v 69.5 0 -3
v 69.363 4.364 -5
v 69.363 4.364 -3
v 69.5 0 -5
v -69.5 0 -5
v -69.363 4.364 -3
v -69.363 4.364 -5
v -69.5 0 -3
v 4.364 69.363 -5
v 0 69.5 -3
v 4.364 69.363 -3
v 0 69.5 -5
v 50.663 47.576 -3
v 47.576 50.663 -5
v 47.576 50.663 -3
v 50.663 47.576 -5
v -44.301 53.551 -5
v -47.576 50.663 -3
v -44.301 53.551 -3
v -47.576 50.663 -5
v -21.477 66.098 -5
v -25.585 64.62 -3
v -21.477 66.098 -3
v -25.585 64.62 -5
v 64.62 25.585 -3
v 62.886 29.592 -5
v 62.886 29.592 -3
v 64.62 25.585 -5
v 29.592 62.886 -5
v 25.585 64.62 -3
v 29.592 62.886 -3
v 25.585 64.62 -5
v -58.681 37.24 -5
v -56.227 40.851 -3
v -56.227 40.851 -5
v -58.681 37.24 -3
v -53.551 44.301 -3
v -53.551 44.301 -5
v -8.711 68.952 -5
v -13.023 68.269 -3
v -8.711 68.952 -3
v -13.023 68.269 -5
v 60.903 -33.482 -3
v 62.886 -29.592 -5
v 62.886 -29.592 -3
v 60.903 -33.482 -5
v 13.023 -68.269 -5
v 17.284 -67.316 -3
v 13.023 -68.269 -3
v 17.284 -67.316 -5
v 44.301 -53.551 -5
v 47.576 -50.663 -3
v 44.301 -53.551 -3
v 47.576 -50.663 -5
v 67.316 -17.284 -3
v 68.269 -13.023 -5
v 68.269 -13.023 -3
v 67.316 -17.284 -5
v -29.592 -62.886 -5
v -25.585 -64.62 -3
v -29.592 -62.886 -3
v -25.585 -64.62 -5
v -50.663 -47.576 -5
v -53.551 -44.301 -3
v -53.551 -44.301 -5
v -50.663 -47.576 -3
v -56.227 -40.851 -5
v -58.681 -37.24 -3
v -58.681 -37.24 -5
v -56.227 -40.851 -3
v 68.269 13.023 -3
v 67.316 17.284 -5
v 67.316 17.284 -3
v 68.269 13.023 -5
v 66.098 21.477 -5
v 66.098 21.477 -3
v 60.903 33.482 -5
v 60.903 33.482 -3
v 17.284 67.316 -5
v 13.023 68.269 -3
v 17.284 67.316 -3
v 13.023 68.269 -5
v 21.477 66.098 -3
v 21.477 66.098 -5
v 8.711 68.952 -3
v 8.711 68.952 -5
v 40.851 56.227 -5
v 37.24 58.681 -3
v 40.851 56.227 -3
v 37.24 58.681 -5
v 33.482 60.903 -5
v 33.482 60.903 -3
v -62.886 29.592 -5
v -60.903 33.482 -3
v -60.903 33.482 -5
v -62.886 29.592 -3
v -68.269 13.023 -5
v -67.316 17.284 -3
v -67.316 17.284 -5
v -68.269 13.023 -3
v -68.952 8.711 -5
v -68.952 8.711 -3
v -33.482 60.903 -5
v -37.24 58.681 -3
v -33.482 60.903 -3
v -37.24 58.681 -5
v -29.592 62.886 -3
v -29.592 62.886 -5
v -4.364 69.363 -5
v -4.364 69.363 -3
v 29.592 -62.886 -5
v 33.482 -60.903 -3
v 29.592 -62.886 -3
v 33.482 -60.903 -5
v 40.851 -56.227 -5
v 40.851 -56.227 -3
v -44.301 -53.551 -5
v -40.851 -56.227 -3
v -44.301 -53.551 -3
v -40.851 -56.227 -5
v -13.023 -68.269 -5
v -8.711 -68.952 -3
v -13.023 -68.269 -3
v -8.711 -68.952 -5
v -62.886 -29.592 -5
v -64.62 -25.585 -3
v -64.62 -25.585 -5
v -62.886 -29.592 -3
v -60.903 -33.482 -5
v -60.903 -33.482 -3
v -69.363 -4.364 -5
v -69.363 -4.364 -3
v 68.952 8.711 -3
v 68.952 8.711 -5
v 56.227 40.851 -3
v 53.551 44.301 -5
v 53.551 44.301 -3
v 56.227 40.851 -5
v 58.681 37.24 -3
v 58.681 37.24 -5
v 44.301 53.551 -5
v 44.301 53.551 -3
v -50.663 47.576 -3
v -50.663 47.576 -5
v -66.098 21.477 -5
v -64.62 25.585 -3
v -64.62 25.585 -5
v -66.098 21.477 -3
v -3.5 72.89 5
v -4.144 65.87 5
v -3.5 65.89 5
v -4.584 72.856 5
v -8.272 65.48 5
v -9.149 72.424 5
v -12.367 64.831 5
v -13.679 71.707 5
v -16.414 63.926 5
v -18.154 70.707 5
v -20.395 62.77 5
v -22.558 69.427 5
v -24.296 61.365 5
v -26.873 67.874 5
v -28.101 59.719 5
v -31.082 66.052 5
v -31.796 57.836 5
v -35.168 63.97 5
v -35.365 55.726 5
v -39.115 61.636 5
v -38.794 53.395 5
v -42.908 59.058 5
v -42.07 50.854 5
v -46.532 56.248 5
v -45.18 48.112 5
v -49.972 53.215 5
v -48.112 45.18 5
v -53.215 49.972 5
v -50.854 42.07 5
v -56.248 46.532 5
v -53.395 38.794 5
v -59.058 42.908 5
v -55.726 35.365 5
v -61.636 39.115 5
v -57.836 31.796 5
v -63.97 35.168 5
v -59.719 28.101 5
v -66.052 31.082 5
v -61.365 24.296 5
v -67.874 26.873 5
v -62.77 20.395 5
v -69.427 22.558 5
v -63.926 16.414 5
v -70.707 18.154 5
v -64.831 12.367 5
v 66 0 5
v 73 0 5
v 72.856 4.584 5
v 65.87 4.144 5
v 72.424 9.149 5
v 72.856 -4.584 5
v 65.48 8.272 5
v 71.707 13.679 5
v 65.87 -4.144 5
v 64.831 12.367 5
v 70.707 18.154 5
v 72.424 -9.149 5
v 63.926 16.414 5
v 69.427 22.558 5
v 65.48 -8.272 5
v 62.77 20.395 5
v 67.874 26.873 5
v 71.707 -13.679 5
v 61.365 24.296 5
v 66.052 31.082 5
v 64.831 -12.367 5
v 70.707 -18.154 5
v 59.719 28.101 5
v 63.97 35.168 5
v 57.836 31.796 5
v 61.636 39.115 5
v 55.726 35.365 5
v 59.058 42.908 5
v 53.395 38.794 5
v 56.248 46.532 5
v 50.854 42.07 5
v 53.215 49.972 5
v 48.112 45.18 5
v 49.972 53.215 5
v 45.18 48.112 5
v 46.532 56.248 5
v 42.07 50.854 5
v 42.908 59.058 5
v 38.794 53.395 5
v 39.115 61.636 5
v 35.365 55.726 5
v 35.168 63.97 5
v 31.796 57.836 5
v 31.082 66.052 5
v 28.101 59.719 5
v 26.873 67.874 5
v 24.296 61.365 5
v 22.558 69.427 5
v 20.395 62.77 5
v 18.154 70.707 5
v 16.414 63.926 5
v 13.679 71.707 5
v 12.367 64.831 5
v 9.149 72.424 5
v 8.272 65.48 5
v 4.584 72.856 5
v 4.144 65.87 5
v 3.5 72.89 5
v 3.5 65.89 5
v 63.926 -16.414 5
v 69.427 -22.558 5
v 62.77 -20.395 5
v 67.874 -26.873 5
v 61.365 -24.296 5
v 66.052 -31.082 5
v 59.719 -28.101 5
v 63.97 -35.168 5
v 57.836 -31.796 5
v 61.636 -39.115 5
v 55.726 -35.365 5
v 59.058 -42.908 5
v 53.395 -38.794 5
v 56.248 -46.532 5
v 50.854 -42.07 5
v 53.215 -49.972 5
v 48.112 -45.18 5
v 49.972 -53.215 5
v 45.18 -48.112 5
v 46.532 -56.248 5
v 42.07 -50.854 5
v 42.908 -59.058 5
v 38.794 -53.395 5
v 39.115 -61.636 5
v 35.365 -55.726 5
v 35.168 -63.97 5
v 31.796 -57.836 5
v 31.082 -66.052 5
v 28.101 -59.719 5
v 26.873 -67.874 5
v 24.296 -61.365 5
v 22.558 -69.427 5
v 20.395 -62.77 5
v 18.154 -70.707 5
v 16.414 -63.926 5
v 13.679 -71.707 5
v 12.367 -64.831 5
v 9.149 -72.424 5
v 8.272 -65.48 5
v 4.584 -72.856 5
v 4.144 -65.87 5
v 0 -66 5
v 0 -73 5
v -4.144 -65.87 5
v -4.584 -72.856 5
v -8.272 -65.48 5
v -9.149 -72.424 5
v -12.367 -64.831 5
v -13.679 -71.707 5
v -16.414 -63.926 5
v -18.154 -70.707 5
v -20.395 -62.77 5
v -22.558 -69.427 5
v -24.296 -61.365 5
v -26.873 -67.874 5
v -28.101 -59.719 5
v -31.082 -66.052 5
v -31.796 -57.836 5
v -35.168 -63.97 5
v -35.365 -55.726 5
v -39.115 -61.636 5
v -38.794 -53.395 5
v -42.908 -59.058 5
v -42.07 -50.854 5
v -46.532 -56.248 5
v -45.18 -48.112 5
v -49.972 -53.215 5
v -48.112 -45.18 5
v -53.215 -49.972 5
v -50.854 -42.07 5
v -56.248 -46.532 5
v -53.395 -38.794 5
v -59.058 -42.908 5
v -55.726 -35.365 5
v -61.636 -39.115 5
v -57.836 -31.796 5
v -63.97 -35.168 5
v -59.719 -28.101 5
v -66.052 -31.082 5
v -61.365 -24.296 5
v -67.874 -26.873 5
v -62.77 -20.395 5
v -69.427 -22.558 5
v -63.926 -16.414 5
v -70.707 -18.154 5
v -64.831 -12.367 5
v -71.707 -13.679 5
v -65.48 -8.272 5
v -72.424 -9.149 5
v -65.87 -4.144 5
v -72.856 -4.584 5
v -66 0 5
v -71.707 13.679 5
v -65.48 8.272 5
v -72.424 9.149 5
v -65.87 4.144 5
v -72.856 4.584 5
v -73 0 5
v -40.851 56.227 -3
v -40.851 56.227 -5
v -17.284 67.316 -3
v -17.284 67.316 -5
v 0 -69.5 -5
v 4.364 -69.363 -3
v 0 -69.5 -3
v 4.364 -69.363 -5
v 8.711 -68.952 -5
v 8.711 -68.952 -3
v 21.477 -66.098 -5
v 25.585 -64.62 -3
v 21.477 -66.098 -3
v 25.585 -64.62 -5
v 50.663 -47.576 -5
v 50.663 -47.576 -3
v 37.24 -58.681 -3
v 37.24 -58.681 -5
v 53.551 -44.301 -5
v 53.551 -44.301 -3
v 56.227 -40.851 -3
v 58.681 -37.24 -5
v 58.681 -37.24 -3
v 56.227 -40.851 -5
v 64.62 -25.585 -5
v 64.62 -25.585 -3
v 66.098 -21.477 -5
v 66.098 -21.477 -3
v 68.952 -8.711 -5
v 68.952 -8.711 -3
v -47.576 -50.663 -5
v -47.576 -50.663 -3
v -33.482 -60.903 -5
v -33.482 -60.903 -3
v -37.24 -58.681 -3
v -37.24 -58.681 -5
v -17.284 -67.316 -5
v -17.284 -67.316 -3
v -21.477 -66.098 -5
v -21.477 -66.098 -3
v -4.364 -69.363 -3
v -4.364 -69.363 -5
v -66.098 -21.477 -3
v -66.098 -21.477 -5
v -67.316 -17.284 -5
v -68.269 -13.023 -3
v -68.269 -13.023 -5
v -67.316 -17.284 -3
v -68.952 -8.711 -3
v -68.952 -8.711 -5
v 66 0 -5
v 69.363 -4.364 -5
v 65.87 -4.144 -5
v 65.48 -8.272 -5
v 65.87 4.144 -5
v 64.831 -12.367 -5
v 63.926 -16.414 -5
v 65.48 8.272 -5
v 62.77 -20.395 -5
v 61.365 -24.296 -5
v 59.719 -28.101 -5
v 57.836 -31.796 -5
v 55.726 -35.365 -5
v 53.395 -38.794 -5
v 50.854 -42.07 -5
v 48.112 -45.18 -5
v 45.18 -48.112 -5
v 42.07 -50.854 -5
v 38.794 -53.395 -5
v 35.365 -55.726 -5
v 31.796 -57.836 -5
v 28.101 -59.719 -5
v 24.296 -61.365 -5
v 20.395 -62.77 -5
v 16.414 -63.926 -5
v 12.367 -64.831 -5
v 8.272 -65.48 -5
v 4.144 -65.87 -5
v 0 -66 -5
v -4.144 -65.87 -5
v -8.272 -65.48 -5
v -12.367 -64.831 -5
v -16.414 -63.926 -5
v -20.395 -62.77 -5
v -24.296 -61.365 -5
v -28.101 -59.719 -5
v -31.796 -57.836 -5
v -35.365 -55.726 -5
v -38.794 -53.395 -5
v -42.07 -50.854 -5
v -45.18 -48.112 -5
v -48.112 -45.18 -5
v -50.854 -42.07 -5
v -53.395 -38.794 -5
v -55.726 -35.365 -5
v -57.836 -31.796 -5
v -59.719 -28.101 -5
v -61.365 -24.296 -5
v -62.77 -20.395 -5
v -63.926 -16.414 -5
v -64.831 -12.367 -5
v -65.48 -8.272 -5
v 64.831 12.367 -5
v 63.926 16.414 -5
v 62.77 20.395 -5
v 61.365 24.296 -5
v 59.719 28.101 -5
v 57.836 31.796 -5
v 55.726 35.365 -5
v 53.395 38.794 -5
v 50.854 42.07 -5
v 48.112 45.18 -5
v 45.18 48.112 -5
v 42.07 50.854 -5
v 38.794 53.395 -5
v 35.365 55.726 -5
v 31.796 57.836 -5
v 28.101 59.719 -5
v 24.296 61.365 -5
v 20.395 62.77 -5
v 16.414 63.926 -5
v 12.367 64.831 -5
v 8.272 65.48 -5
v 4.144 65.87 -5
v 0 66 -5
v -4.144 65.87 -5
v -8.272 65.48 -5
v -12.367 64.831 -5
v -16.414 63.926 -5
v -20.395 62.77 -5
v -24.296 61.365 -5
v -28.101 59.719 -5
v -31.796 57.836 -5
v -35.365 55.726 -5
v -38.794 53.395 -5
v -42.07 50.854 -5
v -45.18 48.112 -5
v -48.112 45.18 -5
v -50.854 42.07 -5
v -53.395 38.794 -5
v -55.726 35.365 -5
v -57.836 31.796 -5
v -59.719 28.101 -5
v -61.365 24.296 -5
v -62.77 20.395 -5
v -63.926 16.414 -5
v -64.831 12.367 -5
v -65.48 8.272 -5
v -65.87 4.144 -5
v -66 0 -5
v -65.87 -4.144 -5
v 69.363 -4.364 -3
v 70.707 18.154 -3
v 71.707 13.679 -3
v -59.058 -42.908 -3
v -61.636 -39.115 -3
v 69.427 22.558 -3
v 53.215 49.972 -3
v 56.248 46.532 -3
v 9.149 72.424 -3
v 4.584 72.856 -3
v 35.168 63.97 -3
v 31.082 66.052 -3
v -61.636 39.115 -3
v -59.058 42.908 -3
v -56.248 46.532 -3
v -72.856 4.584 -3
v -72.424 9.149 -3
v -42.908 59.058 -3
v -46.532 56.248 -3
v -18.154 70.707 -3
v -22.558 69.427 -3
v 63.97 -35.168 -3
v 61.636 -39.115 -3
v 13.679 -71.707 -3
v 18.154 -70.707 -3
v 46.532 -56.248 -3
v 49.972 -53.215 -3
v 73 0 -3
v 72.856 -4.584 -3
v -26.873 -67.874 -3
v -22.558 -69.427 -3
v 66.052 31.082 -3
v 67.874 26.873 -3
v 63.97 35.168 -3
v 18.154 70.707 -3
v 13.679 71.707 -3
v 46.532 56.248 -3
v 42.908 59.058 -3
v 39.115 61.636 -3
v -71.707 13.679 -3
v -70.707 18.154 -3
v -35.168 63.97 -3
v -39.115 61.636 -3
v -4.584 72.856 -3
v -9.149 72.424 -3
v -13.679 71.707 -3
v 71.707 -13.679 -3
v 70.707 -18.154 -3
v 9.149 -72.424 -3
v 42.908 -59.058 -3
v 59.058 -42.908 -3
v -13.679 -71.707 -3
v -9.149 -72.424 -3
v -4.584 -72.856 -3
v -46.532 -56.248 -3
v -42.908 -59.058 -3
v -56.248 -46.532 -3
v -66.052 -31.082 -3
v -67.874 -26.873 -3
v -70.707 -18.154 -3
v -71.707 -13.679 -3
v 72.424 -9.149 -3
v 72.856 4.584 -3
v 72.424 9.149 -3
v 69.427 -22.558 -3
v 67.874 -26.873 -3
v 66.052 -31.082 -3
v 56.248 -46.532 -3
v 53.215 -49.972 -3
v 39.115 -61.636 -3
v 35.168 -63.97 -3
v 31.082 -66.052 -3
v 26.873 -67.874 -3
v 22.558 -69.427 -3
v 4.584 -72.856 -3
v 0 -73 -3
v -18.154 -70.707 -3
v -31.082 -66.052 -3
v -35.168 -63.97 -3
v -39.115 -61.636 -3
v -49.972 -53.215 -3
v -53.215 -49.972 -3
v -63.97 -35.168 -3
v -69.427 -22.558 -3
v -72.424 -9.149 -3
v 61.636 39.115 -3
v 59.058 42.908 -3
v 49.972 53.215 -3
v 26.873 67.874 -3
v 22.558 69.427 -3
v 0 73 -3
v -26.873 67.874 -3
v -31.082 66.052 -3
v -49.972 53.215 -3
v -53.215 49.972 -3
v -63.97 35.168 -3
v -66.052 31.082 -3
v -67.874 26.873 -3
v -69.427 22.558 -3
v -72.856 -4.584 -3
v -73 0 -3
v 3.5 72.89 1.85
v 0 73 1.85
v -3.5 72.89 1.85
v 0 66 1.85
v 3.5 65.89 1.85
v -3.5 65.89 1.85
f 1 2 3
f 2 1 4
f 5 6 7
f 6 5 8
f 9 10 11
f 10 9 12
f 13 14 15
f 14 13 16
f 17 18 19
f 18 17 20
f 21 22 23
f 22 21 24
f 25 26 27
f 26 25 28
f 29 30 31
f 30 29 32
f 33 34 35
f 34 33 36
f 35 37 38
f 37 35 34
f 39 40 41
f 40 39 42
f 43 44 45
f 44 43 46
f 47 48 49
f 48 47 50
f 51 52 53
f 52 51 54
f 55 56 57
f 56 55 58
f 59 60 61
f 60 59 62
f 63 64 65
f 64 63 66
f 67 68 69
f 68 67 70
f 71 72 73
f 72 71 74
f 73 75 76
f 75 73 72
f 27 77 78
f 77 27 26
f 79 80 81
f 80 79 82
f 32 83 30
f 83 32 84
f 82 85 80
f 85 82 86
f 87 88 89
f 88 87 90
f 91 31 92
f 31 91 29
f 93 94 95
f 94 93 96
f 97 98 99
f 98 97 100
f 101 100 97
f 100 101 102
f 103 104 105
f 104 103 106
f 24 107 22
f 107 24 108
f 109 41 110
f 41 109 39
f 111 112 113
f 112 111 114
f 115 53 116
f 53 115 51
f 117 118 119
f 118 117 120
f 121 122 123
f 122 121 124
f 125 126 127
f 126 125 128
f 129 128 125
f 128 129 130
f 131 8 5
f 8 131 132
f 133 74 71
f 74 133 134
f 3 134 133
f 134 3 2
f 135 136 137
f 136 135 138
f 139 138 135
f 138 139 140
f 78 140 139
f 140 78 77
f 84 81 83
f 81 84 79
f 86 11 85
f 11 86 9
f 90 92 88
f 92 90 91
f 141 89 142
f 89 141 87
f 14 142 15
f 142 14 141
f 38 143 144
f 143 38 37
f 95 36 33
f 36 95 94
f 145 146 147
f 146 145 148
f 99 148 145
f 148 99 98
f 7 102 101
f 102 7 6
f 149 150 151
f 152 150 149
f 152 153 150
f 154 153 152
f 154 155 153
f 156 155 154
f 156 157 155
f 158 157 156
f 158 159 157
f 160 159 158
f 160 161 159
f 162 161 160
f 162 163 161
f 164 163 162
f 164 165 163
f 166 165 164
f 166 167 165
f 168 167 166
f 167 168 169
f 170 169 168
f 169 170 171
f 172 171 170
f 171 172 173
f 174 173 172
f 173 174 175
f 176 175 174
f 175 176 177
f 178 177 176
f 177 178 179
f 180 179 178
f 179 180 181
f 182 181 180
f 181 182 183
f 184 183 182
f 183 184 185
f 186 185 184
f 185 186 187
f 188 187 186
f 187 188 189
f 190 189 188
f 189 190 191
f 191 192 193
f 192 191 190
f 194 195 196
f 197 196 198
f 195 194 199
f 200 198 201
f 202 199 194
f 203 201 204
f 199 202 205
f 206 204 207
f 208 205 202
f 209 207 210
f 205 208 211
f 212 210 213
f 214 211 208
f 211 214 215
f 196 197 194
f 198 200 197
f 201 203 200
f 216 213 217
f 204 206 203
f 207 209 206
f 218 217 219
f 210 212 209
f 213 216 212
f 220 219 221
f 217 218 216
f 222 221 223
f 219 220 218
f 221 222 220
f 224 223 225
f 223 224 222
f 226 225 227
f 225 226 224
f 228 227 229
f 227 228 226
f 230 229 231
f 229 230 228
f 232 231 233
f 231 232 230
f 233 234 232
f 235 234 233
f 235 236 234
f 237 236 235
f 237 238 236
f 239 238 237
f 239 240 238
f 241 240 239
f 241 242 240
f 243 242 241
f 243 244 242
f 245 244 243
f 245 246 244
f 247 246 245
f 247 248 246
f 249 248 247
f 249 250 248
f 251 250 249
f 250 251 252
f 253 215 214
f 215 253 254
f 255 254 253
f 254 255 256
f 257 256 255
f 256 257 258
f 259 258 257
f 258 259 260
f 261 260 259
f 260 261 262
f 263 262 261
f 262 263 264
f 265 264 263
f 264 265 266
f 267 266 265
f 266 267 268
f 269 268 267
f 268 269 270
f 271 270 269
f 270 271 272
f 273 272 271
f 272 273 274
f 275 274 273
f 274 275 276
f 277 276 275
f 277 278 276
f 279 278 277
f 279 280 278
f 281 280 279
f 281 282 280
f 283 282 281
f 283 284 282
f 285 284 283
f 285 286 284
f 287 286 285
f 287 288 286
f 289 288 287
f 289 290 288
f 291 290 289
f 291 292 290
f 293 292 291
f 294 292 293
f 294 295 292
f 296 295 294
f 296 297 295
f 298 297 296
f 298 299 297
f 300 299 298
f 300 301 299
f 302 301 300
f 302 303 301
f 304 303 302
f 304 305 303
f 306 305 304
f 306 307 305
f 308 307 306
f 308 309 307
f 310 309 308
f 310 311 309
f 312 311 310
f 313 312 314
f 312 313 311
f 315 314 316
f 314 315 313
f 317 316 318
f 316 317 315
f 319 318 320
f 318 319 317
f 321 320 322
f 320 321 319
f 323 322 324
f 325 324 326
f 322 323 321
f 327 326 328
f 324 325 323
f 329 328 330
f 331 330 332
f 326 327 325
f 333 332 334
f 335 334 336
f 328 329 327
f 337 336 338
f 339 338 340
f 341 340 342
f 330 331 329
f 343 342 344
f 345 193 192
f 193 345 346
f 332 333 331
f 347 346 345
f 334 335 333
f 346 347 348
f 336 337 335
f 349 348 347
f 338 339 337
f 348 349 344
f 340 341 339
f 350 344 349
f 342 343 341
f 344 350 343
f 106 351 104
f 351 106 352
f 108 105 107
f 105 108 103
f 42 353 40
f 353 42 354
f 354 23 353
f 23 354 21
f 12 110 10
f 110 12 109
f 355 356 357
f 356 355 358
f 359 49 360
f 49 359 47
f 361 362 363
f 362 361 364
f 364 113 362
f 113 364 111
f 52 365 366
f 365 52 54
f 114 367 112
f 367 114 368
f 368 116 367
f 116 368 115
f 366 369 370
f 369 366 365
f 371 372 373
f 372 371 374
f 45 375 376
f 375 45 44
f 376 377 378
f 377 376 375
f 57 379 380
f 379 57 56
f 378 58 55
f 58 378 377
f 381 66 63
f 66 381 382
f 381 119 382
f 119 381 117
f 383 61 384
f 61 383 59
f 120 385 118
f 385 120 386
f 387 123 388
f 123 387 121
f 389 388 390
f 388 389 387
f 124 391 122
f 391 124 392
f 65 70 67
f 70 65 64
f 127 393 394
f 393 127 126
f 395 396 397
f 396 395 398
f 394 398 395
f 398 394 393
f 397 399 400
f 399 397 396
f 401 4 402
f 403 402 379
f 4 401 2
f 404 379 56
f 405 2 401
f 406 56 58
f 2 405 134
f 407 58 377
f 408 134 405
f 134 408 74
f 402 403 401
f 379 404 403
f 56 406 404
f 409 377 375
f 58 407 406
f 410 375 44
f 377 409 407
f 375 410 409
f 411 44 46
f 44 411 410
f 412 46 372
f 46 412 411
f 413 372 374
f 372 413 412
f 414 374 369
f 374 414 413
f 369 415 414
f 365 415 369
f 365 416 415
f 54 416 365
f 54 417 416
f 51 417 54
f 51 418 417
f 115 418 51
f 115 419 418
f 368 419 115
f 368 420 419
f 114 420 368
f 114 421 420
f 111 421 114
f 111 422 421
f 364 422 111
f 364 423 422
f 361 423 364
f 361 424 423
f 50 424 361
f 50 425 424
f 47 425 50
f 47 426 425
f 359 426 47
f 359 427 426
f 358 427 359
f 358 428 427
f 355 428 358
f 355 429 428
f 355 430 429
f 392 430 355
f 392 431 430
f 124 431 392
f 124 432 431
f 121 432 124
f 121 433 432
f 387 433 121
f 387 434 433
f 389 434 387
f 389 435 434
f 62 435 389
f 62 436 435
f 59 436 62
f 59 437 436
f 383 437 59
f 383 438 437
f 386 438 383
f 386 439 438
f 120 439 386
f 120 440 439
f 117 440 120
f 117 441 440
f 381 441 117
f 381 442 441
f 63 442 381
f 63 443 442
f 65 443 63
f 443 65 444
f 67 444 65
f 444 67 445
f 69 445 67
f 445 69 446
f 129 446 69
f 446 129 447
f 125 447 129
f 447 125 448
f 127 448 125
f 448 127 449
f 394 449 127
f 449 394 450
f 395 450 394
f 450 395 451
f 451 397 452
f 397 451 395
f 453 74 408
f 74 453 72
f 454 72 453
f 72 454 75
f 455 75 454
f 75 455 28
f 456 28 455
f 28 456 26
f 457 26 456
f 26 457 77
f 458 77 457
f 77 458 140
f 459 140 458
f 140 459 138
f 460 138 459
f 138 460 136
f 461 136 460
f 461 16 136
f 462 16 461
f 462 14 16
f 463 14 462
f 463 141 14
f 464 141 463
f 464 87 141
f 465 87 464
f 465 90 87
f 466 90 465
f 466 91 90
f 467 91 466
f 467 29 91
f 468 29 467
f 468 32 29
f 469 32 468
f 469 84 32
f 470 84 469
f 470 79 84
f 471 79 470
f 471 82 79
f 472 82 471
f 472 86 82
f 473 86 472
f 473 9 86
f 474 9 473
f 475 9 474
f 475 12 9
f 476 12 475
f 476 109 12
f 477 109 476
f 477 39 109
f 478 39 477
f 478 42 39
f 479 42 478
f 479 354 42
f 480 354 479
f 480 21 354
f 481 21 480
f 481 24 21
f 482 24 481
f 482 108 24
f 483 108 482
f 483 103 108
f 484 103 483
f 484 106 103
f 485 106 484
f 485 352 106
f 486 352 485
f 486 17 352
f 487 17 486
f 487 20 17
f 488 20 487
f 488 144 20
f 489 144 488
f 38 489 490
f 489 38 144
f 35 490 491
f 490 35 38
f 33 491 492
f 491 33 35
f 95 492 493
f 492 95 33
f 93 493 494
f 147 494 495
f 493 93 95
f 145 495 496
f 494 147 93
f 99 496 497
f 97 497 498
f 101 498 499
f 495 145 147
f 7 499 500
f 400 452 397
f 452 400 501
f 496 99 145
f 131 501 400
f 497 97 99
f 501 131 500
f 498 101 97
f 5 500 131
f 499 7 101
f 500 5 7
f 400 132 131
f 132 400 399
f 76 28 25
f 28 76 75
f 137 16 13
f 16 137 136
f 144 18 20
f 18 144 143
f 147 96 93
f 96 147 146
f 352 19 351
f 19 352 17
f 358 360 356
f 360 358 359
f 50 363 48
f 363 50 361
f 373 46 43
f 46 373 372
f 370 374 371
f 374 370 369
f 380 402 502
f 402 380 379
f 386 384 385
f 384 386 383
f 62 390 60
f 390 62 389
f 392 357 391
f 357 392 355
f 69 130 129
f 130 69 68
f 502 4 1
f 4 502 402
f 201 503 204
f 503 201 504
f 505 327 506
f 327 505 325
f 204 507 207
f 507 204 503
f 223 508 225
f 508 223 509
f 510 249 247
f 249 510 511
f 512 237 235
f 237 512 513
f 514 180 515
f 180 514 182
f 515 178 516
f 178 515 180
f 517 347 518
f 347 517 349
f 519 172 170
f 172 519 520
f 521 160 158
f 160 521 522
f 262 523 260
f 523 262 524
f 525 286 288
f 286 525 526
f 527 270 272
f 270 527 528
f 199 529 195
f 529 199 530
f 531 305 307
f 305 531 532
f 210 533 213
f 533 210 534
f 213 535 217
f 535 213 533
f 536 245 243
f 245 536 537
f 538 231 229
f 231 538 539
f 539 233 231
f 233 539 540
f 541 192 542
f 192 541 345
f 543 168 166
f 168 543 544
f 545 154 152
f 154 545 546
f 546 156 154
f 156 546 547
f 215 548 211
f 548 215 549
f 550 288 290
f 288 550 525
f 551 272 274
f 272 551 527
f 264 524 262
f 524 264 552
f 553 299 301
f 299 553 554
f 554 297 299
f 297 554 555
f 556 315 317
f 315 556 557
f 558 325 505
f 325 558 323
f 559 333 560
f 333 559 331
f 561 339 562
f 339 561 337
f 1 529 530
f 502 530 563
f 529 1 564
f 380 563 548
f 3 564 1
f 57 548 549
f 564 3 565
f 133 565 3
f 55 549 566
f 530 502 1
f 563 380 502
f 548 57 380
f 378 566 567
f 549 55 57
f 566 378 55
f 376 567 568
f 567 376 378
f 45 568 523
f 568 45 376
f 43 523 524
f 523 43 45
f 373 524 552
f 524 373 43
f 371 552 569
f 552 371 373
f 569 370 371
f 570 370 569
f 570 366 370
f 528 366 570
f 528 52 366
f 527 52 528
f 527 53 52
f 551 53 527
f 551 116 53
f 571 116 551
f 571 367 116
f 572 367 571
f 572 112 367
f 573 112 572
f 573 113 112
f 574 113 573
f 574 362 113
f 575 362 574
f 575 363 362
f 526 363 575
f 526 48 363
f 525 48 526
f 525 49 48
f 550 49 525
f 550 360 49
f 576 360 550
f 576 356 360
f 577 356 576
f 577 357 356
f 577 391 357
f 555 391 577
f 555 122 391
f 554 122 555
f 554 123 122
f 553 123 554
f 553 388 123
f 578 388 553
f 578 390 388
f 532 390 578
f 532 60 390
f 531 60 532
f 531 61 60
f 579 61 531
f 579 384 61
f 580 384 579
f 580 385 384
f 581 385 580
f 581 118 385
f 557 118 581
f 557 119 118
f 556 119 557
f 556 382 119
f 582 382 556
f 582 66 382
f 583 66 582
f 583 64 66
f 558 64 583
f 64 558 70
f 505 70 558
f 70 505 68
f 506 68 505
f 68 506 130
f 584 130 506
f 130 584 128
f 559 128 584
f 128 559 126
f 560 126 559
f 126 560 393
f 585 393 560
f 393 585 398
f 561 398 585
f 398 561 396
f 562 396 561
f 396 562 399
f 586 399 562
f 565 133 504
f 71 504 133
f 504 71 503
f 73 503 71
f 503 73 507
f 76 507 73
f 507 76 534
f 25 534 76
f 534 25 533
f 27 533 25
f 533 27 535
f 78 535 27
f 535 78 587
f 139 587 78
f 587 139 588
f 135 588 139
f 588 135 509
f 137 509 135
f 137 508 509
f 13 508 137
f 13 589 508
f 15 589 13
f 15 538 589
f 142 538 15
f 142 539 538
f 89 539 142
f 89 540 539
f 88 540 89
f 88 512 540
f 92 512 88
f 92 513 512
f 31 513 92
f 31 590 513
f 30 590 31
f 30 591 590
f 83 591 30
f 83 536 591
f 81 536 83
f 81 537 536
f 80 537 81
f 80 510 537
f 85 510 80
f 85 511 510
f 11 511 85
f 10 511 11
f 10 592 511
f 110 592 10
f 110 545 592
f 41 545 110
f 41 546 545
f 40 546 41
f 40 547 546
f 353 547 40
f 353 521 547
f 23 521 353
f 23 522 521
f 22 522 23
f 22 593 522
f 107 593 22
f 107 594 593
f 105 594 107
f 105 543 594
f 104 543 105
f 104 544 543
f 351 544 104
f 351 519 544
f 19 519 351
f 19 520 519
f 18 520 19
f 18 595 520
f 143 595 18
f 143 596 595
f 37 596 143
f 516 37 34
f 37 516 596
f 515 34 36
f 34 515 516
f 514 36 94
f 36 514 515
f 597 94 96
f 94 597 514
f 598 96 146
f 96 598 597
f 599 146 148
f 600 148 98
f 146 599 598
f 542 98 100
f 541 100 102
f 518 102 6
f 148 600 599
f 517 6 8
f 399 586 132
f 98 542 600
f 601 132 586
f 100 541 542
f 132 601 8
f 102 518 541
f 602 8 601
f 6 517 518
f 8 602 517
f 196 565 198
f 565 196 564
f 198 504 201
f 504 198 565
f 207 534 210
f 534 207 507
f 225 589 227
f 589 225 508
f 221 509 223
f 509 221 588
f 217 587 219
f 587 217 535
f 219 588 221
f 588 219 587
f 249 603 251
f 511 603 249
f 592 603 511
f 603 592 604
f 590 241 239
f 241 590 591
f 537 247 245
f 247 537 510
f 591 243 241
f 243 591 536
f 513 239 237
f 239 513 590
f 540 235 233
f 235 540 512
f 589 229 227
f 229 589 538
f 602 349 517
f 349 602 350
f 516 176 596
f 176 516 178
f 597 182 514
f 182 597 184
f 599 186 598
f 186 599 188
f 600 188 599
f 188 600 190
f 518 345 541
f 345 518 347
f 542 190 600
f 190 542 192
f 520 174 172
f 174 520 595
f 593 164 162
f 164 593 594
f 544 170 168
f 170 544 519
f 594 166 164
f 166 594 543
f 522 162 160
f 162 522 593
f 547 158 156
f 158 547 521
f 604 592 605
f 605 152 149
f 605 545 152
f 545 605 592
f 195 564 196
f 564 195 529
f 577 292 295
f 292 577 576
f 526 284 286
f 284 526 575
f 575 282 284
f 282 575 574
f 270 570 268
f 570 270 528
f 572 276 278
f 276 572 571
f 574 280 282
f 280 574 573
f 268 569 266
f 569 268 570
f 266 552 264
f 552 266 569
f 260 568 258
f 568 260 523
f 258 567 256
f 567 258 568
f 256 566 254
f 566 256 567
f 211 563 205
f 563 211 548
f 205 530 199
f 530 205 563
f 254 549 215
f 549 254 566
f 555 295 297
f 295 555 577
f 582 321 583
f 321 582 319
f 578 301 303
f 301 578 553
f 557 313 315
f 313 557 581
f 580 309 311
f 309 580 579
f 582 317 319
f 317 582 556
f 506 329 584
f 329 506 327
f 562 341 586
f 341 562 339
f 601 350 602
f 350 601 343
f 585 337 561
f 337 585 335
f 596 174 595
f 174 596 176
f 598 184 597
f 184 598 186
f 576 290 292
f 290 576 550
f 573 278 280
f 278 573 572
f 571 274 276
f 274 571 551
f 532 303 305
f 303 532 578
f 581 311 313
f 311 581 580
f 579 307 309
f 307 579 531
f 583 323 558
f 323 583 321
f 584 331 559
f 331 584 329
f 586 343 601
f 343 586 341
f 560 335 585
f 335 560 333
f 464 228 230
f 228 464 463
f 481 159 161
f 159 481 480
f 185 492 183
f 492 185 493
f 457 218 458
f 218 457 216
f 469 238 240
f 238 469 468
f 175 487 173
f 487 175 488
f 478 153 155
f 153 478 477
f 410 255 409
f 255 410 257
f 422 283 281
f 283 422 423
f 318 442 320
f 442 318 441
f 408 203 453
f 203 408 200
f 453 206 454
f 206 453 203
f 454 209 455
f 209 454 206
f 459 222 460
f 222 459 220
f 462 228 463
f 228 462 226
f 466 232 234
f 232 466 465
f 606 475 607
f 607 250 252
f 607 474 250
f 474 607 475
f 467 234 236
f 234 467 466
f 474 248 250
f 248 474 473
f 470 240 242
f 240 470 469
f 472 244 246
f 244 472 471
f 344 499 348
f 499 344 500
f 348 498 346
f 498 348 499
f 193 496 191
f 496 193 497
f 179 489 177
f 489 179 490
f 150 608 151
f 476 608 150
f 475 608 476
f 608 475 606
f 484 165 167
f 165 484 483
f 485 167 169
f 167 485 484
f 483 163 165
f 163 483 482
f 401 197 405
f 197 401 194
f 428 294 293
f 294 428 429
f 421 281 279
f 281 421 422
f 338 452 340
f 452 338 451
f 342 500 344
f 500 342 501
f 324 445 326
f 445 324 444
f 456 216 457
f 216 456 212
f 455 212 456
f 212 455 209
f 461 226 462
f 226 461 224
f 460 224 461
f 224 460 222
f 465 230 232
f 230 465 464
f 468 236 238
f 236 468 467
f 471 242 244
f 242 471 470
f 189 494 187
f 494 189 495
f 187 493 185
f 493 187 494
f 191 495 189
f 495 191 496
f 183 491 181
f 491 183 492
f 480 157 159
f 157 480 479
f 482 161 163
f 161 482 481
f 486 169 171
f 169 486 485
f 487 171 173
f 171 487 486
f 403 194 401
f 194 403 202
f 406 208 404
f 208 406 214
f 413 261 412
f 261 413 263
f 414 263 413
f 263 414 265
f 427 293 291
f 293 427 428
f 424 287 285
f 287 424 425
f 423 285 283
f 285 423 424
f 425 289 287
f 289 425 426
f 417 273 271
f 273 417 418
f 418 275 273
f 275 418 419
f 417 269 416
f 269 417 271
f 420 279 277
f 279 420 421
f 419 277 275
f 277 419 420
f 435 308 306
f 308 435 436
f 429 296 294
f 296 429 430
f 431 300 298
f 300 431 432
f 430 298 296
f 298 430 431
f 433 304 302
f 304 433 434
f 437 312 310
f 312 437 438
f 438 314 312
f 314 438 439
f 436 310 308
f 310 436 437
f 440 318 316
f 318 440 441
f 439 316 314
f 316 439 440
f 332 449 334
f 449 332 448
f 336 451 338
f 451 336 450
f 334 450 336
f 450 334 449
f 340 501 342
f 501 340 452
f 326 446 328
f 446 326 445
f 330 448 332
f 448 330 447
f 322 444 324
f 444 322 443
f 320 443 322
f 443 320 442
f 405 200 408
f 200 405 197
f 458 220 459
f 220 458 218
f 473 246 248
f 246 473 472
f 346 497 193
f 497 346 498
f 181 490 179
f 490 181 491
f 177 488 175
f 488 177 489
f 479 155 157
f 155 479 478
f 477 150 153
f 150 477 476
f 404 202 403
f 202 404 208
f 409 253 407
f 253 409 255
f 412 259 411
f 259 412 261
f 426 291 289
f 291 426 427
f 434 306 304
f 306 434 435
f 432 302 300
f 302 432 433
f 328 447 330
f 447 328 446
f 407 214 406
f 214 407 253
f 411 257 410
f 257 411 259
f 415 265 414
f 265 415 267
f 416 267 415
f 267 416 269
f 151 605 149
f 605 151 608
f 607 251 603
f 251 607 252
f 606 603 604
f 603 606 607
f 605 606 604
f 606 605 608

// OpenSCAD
$fn=100;
outer=146;
lip=139;
hole=132;

difference(){
    union(){
       cylinder(h = 10, d=lip, center=true);
       translate([0,0,1])
       cylinder(h = 8, d=outer, center=true);
    }
    cylinder(h = 10.2, d =hole, center=true);
    translate([0,50,3.6]) cube([7,100,3.5], center=true);
}
